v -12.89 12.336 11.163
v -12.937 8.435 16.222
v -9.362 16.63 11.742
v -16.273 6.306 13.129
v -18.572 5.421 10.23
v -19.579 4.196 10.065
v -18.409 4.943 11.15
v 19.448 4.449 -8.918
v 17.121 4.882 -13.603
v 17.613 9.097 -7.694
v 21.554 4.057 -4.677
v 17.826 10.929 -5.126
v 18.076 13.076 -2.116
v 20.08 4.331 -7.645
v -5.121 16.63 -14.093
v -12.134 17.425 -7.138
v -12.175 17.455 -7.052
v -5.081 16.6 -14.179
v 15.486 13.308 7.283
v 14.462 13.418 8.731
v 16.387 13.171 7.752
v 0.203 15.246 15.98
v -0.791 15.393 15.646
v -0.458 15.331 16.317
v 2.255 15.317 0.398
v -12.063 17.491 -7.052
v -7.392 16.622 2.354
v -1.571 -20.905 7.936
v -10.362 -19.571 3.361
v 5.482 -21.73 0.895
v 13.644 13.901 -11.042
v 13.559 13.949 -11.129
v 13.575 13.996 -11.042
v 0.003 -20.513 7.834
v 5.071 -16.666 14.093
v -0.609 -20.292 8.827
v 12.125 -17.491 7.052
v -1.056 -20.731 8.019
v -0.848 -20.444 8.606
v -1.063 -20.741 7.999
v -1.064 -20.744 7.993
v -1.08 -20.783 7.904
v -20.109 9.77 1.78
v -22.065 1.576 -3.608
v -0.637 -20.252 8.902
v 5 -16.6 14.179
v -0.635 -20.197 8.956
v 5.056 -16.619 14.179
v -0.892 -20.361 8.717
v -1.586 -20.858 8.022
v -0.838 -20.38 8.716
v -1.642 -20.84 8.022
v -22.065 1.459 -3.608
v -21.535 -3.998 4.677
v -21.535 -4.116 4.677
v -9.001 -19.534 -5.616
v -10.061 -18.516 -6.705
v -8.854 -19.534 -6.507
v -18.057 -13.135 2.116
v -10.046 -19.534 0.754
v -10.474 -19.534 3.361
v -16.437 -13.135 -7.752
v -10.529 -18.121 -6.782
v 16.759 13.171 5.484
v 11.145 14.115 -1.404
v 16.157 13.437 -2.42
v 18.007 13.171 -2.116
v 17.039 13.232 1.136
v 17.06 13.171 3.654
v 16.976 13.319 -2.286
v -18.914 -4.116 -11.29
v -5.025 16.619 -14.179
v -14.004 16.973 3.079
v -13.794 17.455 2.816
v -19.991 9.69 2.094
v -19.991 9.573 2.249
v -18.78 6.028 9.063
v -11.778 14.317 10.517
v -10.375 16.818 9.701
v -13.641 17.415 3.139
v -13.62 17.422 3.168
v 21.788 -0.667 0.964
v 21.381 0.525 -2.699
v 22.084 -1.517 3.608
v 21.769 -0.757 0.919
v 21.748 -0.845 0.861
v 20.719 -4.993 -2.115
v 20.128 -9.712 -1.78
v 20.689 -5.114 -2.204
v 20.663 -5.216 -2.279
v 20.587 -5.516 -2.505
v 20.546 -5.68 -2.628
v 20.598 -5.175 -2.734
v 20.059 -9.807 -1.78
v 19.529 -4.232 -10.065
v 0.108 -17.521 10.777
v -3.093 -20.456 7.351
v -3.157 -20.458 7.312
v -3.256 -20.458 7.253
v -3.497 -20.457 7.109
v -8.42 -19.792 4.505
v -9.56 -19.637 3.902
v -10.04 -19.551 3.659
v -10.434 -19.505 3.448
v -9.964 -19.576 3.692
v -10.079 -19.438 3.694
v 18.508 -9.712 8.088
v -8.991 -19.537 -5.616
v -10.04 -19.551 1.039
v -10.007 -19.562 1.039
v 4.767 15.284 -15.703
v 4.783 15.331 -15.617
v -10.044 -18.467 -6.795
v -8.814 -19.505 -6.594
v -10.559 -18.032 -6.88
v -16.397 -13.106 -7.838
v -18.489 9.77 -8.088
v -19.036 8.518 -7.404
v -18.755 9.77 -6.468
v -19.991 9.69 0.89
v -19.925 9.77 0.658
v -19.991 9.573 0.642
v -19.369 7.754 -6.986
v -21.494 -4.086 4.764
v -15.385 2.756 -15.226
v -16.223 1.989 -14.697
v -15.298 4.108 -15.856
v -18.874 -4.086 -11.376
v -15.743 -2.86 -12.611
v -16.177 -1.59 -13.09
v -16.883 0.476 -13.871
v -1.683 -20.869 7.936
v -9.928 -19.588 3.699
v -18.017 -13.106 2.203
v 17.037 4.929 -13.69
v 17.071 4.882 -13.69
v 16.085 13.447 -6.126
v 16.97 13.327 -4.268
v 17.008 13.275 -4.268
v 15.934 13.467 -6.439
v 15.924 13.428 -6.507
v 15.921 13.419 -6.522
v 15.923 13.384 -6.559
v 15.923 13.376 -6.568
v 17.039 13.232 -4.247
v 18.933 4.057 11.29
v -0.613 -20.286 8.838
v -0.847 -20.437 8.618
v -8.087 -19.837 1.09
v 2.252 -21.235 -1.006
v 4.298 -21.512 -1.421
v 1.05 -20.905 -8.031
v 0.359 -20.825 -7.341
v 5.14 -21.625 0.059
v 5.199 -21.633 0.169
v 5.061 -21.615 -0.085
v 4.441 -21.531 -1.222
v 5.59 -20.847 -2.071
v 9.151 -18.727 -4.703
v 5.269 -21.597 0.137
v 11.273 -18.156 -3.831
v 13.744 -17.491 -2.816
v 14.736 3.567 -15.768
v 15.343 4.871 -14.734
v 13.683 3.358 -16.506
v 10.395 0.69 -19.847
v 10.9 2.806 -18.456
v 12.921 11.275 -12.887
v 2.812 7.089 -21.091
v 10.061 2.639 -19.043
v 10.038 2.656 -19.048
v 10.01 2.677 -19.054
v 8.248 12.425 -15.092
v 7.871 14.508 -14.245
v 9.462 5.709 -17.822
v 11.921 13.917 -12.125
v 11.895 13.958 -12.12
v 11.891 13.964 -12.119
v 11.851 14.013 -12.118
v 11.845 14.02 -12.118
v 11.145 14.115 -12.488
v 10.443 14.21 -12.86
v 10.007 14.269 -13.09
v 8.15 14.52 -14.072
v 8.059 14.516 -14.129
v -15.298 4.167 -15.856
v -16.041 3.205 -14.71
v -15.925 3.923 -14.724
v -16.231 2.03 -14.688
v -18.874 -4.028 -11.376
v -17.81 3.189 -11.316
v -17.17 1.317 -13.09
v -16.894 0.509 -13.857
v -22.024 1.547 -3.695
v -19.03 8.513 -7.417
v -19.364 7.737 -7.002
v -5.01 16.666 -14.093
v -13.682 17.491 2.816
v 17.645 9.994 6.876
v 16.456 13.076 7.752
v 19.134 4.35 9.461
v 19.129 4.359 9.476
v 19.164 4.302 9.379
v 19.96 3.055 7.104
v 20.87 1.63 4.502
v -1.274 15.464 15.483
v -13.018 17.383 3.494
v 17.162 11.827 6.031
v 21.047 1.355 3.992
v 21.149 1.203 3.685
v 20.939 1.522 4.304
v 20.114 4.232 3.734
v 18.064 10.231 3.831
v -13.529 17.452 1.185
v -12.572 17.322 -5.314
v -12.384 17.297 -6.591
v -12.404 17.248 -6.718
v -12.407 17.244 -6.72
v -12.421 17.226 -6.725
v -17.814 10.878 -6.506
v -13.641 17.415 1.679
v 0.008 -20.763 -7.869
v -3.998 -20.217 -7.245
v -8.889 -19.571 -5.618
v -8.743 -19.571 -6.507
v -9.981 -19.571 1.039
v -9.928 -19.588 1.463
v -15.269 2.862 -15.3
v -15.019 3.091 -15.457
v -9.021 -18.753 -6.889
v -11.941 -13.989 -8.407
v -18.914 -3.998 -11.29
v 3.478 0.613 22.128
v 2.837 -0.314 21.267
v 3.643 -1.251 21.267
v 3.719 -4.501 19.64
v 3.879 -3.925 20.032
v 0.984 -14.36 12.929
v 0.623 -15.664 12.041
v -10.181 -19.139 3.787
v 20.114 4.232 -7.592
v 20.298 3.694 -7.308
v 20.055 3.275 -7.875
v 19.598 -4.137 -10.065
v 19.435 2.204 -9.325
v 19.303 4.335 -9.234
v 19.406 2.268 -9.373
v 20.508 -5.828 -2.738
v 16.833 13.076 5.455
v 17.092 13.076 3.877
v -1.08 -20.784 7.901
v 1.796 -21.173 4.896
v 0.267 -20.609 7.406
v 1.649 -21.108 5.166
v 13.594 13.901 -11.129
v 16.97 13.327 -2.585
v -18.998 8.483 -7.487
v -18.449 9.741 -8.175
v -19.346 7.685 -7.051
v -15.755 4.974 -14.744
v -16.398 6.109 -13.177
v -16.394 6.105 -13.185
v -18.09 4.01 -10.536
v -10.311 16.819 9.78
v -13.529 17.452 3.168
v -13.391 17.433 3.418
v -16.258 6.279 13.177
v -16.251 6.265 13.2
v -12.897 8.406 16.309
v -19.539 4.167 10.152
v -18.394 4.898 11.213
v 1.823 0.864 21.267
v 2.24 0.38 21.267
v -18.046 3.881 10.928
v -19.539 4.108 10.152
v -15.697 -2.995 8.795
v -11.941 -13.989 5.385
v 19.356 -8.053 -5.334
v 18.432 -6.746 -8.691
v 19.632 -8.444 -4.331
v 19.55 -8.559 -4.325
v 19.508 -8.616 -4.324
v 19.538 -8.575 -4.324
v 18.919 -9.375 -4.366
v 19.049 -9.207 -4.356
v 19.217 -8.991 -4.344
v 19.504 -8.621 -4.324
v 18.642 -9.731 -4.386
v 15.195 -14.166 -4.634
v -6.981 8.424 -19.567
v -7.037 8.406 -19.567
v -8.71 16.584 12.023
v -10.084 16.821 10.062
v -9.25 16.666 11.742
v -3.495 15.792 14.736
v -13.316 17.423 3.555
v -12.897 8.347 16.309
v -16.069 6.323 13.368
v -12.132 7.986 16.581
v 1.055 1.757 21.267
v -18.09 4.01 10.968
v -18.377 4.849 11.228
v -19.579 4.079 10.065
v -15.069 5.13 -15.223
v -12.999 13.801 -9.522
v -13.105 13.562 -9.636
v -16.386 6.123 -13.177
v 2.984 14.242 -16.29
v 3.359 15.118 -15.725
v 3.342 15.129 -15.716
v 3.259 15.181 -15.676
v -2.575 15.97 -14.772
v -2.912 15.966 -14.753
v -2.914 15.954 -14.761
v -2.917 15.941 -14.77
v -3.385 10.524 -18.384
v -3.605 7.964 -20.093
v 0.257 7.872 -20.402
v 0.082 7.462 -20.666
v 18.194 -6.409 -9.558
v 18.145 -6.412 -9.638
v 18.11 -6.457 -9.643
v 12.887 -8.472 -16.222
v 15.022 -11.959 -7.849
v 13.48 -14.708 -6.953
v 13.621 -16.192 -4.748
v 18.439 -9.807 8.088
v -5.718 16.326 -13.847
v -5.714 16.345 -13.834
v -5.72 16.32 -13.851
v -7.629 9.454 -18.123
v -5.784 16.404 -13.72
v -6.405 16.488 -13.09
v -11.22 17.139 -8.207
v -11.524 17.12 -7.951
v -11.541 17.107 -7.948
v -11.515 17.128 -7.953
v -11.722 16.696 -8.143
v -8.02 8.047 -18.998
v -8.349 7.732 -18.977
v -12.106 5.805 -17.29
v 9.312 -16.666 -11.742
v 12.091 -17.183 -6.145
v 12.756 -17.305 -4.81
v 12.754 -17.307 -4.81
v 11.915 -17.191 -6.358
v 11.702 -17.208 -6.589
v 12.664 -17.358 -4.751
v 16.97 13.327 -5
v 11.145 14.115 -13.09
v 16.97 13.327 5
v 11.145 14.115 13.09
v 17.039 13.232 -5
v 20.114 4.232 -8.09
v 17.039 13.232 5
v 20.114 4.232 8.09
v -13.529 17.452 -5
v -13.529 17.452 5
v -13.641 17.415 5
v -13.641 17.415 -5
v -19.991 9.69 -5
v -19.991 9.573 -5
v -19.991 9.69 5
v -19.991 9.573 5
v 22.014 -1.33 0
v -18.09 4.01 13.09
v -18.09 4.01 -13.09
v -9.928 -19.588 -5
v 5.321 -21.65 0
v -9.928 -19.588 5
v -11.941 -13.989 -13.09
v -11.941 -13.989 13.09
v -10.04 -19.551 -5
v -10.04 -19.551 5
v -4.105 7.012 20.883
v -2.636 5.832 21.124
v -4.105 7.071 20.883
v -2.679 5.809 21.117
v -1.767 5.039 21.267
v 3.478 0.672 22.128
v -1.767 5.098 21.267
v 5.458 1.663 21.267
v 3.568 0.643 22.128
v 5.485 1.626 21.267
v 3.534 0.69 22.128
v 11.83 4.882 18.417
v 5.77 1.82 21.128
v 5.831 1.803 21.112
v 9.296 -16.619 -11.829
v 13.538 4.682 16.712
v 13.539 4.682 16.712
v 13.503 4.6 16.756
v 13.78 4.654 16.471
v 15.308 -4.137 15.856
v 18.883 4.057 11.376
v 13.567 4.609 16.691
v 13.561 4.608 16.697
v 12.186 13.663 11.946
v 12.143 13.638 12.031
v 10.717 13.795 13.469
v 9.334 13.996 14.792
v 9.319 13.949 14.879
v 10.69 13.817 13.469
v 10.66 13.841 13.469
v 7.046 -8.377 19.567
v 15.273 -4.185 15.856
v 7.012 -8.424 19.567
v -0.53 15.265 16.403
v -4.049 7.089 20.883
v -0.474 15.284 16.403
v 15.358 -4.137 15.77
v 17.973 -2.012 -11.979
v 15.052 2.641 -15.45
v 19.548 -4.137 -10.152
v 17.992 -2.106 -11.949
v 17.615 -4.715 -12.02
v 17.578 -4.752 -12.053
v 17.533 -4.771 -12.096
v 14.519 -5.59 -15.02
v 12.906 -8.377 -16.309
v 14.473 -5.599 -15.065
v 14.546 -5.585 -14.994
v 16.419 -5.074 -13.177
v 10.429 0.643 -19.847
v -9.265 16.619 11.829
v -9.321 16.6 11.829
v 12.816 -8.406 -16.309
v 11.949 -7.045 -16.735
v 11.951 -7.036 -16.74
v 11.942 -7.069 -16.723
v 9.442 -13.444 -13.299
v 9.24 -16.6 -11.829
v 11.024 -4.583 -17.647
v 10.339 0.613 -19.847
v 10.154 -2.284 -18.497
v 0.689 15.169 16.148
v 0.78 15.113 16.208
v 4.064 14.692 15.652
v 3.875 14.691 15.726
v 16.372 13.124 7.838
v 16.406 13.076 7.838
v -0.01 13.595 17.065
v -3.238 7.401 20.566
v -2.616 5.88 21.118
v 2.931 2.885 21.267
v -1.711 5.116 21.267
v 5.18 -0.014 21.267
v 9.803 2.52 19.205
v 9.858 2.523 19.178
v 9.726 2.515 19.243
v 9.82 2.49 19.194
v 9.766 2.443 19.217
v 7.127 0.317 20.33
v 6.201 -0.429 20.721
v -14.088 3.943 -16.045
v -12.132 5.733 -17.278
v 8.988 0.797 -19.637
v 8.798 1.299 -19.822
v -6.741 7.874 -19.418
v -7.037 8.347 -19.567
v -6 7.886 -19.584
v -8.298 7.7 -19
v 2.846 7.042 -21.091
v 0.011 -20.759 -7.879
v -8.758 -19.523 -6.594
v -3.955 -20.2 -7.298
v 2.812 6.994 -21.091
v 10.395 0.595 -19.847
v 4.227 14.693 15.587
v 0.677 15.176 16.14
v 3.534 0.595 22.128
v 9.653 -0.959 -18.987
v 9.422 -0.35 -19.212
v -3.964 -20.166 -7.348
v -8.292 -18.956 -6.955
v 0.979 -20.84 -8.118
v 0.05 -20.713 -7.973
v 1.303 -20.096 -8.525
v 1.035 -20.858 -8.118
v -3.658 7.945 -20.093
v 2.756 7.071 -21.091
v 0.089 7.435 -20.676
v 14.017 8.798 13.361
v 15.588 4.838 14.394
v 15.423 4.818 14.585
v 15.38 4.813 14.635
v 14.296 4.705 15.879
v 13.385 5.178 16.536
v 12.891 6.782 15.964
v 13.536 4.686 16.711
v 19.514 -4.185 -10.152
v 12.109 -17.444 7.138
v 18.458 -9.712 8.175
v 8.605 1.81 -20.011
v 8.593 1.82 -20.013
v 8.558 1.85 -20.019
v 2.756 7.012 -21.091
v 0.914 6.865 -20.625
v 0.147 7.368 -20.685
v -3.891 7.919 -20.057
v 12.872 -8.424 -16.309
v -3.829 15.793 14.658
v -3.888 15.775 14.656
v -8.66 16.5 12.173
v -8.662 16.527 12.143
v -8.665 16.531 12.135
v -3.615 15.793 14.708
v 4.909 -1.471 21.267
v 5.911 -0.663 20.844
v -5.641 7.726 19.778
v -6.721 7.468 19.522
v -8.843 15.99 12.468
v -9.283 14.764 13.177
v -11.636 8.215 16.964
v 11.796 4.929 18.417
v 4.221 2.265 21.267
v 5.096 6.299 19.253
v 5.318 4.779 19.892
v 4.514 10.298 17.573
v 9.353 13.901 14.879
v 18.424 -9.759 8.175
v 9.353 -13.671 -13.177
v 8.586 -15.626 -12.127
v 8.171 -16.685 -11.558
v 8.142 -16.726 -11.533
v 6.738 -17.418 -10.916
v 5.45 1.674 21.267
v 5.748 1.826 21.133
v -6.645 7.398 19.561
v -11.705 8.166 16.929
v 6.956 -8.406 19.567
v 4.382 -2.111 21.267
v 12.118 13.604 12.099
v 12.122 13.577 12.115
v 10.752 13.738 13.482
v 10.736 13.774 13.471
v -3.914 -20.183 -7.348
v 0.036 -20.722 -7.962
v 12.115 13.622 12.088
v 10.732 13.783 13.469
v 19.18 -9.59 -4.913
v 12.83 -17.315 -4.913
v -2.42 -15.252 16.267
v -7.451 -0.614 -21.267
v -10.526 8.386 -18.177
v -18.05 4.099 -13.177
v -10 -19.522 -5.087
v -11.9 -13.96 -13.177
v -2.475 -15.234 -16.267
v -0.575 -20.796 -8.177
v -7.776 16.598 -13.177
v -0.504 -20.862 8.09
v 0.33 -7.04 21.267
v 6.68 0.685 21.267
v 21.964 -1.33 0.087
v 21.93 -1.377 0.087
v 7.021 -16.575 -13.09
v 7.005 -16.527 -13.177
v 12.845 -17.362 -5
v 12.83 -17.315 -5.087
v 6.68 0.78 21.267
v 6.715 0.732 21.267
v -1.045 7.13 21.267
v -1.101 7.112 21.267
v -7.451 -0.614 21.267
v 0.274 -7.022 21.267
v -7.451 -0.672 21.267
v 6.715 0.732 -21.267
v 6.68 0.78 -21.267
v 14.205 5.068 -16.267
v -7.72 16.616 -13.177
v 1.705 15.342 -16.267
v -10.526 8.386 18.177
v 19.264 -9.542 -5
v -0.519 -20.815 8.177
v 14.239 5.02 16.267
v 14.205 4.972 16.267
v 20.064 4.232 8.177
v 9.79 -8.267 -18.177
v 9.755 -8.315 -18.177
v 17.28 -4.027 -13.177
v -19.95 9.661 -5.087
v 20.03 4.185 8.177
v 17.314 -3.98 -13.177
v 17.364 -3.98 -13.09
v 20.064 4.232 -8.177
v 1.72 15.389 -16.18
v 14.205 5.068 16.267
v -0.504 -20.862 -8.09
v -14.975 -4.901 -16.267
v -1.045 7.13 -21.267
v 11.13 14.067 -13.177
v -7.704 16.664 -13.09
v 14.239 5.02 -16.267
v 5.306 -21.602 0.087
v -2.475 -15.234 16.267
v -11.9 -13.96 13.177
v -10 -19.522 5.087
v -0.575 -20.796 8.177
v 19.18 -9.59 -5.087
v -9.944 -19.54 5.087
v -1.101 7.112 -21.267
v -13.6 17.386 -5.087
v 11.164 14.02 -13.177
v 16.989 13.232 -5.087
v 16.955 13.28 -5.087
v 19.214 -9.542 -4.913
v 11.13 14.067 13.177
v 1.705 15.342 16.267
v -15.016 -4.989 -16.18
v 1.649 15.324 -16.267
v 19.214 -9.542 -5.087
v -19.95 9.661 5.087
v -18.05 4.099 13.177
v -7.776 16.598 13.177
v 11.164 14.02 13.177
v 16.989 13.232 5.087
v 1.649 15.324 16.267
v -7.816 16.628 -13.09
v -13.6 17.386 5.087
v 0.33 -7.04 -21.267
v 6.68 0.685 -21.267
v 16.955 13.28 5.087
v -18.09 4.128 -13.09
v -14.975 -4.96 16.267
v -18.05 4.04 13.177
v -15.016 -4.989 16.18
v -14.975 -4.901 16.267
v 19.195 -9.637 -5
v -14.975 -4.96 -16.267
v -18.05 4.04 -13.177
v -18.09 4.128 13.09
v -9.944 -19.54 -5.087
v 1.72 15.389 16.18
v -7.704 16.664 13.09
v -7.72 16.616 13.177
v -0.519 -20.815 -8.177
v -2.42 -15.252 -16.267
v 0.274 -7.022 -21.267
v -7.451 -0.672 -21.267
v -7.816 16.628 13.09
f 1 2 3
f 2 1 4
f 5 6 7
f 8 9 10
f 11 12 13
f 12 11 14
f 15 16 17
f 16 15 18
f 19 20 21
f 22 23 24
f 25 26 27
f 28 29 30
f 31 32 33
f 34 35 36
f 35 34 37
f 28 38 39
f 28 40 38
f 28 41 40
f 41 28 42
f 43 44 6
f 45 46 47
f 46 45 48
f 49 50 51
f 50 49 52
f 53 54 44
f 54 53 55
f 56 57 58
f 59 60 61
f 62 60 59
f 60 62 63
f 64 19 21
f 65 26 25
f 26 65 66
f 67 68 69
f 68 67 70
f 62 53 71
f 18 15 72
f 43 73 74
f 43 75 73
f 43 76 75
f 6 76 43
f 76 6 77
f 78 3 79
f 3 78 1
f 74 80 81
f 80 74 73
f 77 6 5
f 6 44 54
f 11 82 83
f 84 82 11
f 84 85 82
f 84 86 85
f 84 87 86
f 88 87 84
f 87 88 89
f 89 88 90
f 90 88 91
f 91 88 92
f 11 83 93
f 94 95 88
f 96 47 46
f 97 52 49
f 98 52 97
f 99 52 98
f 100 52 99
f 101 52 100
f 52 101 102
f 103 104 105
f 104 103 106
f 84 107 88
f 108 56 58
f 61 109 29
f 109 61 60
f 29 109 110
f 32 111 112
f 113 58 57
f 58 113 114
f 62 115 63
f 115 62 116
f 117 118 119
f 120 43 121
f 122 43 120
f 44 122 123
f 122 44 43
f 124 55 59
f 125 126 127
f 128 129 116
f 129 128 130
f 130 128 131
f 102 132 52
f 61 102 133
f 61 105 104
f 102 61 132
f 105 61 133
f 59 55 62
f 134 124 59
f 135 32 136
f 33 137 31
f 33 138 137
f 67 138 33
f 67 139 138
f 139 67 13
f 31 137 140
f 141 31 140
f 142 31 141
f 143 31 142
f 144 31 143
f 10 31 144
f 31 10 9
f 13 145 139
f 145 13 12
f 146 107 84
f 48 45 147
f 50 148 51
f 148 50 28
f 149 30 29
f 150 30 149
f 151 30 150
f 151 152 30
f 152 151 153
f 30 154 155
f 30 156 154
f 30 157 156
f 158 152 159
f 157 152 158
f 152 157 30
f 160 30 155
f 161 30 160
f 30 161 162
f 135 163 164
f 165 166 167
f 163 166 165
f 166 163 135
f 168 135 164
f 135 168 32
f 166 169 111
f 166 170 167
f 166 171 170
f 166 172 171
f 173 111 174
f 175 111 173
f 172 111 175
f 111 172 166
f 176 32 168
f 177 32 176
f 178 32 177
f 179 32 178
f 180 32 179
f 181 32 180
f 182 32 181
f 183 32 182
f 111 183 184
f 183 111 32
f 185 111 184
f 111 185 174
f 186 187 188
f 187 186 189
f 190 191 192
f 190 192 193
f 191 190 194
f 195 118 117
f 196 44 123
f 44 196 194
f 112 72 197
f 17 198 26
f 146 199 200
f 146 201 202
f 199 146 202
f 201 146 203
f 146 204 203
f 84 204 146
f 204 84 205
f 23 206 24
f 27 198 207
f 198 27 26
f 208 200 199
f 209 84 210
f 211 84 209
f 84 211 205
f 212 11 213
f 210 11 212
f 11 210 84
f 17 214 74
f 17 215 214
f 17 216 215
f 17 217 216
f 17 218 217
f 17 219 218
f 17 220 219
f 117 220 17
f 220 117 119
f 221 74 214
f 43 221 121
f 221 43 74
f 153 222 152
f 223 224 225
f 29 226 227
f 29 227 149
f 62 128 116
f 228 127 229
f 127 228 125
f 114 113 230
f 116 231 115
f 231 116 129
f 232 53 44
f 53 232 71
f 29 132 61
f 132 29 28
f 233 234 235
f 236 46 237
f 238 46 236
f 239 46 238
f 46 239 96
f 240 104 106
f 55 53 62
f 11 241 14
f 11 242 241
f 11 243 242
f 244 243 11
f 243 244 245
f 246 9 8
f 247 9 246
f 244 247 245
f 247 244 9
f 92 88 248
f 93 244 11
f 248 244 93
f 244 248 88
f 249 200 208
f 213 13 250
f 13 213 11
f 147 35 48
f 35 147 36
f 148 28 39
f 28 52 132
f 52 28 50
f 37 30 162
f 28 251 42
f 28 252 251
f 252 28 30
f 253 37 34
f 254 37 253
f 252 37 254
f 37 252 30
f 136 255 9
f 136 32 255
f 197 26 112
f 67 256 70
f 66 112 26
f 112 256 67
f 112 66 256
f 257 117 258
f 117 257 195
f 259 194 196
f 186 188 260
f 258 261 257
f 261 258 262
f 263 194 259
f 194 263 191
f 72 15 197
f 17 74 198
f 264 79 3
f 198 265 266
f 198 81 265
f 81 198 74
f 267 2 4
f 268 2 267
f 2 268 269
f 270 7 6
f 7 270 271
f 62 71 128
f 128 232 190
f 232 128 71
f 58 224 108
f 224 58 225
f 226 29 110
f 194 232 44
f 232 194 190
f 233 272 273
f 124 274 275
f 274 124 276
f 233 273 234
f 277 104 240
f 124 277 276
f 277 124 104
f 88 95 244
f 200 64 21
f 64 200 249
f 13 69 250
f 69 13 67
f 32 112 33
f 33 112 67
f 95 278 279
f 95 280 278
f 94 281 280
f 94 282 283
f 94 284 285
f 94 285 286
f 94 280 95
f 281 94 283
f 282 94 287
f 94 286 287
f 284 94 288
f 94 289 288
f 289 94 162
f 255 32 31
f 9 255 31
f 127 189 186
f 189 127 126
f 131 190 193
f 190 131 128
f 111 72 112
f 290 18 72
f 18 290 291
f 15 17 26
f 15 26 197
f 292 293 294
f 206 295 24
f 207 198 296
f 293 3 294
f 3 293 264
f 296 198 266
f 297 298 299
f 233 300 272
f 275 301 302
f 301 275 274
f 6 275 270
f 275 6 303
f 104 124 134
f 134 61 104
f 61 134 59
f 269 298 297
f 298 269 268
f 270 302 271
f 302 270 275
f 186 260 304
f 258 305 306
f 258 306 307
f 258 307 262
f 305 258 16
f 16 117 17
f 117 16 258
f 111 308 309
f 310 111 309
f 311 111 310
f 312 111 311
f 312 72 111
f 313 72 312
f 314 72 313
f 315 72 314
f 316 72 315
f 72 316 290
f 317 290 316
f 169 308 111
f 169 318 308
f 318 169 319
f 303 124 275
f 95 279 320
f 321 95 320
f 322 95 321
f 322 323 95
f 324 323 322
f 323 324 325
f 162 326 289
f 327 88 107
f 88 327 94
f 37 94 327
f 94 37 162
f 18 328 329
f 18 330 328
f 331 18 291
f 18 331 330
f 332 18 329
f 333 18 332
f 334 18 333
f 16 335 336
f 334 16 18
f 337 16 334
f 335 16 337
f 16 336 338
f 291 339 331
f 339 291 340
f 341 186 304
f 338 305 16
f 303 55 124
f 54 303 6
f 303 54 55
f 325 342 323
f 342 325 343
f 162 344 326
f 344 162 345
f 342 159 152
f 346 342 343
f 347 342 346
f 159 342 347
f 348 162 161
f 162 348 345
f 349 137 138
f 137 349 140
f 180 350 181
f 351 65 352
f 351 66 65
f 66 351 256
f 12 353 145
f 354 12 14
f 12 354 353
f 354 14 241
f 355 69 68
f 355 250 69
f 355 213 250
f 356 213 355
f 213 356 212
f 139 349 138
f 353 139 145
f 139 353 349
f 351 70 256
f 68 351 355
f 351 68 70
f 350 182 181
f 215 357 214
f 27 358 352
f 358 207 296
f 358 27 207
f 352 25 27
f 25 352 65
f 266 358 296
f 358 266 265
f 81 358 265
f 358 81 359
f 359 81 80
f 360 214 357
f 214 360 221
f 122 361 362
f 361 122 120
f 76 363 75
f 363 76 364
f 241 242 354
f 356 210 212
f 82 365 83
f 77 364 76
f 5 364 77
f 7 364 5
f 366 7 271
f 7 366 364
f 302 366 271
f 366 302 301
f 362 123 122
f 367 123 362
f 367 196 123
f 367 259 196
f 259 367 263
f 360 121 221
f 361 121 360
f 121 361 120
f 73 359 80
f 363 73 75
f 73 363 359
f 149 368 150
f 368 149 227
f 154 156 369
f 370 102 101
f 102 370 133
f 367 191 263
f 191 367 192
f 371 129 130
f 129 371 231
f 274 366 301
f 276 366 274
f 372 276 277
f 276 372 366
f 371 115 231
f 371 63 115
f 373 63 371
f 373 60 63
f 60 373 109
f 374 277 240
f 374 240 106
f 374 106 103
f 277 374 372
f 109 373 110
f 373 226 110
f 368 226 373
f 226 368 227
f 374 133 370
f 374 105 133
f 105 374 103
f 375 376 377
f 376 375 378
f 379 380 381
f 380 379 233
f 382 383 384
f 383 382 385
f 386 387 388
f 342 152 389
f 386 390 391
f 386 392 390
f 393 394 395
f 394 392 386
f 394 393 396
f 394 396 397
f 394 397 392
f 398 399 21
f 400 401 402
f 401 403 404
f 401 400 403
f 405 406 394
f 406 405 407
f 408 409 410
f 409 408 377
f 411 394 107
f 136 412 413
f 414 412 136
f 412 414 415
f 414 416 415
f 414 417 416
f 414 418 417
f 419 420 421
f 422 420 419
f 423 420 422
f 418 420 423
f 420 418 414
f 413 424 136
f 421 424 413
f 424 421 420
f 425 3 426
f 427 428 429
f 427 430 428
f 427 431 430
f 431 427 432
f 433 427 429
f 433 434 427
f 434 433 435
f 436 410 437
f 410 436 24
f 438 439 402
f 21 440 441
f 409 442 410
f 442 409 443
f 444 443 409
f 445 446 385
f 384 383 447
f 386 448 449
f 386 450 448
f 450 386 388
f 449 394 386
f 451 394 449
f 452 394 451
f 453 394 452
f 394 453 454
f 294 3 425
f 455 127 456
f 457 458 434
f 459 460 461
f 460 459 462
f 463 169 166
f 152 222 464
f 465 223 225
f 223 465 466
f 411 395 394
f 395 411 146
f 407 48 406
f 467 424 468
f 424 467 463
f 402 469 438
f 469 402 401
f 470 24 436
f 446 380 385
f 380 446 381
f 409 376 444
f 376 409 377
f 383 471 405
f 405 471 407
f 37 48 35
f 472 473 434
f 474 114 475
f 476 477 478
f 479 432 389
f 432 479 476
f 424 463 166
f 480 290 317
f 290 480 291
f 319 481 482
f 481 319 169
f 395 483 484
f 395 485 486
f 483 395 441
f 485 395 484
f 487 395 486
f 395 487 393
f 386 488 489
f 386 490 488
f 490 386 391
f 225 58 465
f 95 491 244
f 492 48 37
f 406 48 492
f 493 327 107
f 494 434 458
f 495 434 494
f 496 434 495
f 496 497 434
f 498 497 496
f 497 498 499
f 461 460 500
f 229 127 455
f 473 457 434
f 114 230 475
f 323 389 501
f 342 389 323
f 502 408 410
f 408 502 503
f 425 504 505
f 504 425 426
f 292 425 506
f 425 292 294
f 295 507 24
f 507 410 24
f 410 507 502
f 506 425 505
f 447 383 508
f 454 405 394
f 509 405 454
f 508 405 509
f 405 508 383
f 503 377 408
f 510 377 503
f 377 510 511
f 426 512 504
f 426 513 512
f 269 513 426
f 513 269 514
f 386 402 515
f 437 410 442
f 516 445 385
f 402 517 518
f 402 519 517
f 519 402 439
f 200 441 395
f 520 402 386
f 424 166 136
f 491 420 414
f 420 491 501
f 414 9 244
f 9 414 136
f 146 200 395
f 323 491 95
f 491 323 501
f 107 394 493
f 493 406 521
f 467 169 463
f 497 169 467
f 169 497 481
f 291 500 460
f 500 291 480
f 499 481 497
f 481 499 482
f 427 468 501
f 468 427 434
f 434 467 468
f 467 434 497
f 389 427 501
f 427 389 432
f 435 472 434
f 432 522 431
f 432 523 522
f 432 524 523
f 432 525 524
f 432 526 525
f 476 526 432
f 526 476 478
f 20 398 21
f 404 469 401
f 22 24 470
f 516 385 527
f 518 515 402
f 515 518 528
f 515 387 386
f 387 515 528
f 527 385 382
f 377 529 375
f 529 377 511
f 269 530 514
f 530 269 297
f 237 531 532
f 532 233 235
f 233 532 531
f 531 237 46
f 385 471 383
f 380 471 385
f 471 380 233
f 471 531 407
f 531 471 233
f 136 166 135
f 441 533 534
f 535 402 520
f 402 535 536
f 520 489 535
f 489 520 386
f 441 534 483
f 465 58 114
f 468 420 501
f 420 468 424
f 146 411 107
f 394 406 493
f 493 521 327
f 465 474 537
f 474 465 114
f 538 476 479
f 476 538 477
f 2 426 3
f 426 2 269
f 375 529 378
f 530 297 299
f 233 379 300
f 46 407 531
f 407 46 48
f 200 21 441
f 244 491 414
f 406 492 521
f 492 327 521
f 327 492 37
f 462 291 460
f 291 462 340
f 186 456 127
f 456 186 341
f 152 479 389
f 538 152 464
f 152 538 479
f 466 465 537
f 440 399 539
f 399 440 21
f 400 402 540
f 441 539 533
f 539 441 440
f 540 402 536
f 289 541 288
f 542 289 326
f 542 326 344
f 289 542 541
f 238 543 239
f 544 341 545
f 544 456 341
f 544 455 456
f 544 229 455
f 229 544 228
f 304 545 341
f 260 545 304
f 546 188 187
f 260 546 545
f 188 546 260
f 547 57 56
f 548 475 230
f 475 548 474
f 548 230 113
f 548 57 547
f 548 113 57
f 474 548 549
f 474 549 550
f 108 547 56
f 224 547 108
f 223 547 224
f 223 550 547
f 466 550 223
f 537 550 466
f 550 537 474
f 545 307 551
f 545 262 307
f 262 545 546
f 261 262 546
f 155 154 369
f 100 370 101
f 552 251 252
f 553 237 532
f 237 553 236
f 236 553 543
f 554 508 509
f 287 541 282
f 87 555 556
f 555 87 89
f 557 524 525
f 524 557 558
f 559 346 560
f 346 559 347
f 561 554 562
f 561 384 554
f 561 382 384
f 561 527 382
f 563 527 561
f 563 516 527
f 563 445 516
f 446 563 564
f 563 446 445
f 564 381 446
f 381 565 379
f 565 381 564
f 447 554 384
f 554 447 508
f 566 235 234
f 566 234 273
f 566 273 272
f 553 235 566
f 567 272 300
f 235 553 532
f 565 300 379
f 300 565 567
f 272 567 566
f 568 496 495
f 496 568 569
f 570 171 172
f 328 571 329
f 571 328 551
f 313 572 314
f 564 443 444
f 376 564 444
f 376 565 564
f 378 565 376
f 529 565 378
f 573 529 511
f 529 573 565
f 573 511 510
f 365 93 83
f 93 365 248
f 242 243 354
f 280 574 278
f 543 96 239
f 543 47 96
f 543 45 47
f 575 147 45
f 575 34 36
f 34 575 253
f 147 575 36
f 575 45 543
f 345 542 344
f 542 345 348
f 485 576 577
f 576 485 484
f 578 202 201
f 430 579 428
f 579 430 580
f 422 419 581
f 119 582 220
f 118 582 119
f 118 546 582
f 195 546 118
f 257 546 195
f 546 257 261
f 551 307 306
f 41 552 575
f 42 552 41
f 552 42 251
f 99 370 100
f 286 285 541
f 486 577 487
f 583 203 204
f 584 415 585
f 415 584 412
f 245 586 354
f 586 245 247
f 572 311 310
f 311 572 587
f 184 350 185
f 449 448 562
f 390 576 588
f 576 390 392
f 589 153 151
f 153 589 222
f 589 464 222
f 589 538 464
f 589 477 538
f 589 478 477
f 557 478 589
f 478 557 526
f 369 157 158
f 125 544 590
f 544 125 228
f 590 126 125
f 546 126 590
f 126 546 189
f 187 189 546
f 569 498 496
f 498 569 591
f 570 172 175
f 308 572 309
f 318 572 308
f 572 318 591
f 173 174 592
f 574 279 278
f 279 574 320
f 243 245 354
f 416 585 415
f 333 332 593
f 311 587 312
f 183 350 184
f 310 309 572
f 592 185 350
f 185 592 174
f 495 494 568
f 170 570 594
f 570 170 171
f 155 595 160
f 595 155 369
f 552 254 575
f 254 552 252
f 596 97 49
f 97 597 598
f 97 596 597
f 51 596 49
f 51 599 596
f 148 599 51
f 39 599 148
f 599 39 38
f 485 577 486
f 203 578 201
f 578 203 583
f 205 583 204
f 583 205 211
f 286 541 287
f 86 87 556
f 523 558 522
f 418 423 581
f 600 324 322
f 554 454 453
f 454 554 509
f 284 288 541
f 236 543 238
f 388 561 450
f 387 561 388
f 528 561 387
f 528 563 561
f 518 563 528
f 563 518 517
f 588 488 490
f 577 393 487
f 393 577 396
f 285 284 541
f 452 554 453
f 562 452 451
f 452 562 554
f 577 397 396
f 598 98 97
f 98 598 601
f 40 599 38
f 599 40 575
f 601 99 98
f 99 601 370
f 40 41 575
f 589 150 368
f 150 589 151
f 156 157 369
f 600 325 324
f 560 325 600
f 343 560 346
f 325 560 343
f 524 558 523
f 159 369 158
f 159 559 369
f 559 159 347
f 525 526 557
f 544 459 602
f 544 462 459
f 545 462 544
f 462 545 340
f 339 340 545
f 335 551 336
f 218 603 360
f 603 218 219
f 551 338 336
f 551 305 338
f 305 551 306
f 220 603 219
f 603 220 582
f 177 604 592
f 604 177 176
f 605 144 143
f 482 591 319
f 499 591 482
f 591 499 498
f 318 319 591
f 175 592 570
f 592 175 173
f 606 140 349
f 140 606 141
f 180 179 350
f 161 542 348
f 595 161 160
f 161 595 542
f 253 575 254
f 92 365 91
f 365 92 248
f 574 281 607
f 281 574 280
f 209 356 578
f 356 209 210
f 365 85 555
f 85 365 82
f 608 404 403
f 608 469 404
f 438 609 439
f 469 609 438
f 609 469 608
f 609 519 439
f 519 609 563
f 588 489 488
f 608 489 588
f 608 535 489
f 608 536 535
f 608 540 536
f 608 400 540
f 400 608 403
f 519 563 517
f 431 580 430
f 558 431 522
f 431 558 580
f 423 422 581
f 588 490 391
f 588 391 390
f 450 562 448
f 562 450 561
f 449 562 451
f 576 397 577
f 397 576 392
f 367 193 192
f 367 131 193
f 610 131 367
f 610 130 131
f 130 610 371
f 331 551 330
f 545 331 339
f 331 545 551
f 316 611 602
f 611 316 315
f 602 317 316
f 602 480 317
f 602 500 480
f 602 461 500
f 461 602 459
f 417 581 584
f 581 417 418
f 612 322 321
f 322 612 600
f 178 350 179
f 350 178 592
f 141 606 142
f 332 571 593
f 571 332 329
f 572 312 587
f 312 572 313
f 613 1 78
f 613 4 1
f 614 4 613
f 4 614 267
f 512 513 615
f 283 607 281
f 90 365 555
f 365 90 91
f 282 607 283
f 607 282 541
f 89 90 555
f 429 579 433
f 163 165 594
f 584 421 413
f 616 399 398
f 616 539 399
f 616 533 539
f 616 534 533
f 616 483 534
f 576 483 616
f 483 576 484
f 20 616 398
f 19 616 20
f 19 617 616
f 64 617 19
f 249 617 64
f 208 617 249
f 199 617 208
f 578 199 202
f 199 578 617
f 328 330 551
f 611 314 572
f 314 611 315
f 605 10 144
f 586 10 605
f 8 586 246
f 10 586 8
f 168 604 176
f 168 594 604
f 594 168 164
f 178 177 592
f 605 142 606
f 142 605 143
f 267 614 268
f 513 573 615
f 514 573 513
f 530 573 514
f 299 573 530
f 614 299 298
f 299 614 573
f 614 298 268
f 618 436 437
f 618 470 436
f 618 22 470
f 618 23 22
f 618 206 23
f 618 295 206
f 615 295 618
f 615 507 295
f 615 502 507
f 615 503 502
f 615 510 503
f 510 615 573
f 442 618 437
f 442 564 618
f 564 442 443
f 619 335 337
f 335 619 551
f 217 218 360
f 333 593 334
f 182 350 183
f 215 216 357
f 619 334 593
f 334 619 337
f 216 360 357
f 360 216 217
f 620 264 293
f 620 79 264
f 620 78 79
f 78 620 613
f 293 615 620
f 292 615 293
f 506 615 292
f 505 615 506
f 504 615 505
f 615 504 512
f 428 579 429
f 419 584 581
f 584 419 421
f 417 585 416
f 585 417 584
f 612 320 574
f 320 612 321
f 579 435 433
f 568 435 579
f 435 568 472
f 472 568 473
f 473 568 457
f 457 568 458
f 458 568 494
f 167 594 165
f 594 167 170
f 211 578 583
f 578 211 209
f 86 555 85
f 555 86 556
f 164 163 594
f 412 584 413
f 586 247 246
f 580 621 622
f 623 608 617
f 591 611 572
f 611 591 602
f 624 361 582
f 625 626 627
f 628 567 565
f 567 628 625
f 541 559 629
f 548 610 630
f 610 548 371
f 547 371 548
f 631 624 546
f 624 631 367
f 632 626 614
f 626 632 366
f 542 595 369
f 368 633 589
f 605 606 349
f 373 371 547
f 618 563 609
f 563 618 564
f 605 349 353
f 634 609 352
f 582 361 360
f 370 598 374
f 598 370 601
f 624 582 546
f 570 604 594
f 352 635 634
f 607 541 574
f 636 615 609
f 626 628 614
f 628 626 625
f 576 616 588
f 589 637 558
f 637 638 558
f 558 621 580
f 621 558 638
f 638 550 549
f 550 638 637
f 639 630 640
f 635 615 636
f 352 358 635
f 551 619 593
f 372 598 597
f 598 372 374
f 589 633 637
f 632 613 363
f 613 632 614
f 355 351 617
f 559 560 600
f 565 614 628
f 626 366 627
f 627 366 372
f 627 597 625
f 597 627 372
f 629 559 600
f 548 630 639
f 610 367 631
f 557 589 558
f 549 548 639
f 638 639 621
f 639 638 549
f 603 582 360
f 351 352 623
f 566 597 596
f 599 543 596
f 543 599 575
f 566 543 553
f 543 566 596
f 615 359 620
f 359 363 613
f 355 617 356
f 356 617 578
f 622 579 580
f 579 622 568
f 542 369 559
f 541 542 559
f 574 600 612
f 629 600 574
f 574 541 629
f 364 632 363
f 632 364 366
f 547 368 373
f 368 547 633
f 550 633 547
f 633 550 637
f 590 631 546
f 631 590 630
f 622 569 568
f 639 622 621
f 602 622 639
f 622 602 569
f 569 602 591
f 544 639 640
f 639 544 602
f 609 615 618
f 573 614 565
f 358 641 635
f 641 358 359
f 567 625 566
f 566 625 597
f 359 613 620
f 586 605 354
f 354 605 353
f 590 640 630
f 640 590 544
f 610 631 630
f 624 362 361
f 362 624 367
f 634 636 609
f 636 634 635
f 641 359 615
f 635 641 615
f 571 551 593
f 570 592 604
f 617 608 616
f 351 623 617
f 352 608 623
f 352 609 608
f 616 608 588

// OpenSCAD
// Auto-generated OpenSCAD file

    inner_points = 10*[[0.03149424619031844, -0.6992864879444639, 2.118033988749915], [0.03149424617314351, -0.6992864879462605, -2.118033988749875], [-0.741026938557207, -0.06429749660974819, 2.1180339887527775], [-0.741026938574382, -0.06429749661154475, -2.1180339887470123], [0.6664832375250342, 0.07323469680306156, 2.1180339887470123], [0.6664832375078593, 0.073234696801265, -2.1180339887527775], [-0.10603794722249132, 0.7082236881377774, 2.118033988749875], [-0.10603794723966625, 0.7082236881359808, -2.118033988749915], [-0.9959395242778242, -1.9492520218959832, 0.5000000000047155], [-0.9959395242818789, -1.9492520218964078, -0.49999999999528455], [1.6939170079800567, 1.3232002307532087, 0.49999999999242173], [1.693917007976002, 1.3232002307527841, -0.5000000000075783], [1.2814597801305372, -1.726720258407157, -0.5000000000046125], [-1.9909924725146007, 0.9631362738511482, 0.5000000000075147], [-1.9909924725186547, 0.9631362738507241, -0.49999999999248534], [1.916448771465253, -0.9541990736596313, -0.5000000000075147], [-1.356003481179885, 1.7356574585986737, 0.5000000000046125], [-1.356003481183939, 1.7356574585982496, -0.49999999999538747], [0.9739715088171708, -0.8267427808031579, -1.809016994378695], [-1.0485152098665185, 0.8356799809946748, 1.809016994378695], [-1.0485152098811878, 0.8356799809931404, -1.8090169943712], [-1.1859777270848737, -1.3930353516266287, 1.3090169943801975], [-1.1859777270954883, -1.393035351627739, -1.3090169943696974], [1.1114340260461406, 1.4019725518192556, 1.3090169943696974], [1.111434026035526, 1.4019725518181454, -1.3090169943801975], [0.5290207203001192, -2.155480635818928, -1.3799625129733234e-12], [2.1914434820964175, -0.13299391712056935, -8.977904296875527e-12], [-0.24350046444084633, -1.5204916444835261, 1.6180339887513777], [-0.24350046445396684, -1.5204916444848984, -1.618033988748412], [-1.4934659983916794, -0.4930578740219434, 1.61803398875601], [-1.4934659984047998, -0.49305787402331586, -1.6180339887437798], [1.418922297355452, 0.5019950742148327, 1.6180339887437798], [1.4189222973423317, 0.5019950742134602, -1.61803398875601], [0.16895676340461901, 1.529428844676415, 1.618033988748412], [0.1689567633914985, 1.5294288446750428, -1.6180339887513777], [-0.05346226163379702, -2.0767083147528806, 0.8090169943758957], [-0.053462261640357105, -2.0767083147535668, -0.8090169943739992], [2.001405279289368, 0.4232227531487855, 0.8090169943665041], [2.001405279282808, 0.4232227531480994, -0.8090169943833908], [0.6989767981900609, -1.6479479373417958, -1.3090169943772316], [-1.8009542697009913, 0.4069196035824795, 1.3090169943819274], [-1.8009542697116054, 0.4069196035813693, -1.3090169943679675], [1.7264105686516436, -0.39798240339096275, -1.3090169943819274], [-0.7735204992394086, 1.6568851375333125, 1.3090169943772316], [-0.773520499250023, 1.6568851375322022, -1.3090169943726633]];

    outer_points = 10*[[-1.371336447205841, 1.7395979495788785, 0.28160841586432317], [1.840844013022788, -0.9711587981091819, 0.8088336578512769], [-2.0028099882397674, 0.9711587981091819, 0.17796268530774234], [1.2093704719888618, -1.7395979495788785, 0.705187927294696], [-1.2093704719888618, 1.7395979495788785, -0.705187927294696], [2.0028099882397674, -0.9711587981091819, -0.17796268530774234], [-1.840844013022788, 0.9711587981091819, -0.8088336578512769], [1.371336447205841, -1.7395979495788785, -0.28160841586432317], [-0.4064591423188801, 0.7041810071951622, 2.079660561781849], [0.35183380229163597, 0.06425814427453419, 2.2041215583445464], [0.27963973874229003, 0.7041810071951622, -2.1004758277879656], [1.037932683352806, 0.06425814427453419, -1.9760148312252683], [1.6356459076028755, 1.3076188096386316, 0.77515384996851], [-1.7976118828198546, -1.3076188096386316, 0.21164249319050915], [-1.0393189382093386, -1.9475416725592598, 0.33610348975320653], [1.7976118828198546, 1.3076188096386316, -0.21164249319050915], [-1.6356459076028755, -1.3076188096386316, -0.77515384996851], [-0.8773529629923593, -1.9475416725592598, -0.6506928534058127], [2.1983744202265796, -0.15173142569558906, 0.36082608061173255], [-2.1983744202265796, 0.15173142569558906, -0.36082608061173255], [0.5451552268035095, -2.163531242529383, 0.08947803522579041], [-1.285617552887813, 0.837669902652172, 1.6222097951243055], [0.6996191495317593, -0.837669902652172, 1.948052914399131], [-0.6996191495317593, 0.837669902652172, -1.948052914399131], [1.285617552887813, -0.837669902652172, -1.6222097951243055], [0.9303301531589606, 1.3901194841517452, 1.47923007115347], [1.3543625812980353, 1.3901194841517452, -1.104236295210947], [-0.9280871456840218, 1.6570972750657649, 1.174202217884761], [1.525800369934091, -0.41373660970166726, 1.5769664633090175], [-1.9498327980731658, 0.41373660970166726, 1.0064999030553996], [0.5040547175449472, -1.6570972750657649, 1.409264148479656], [-0.5040547175449472, 1.6570972750657649, -1.409264148479656], [1.9498327980731658, -0.41373660970166726, -1.0064999030553996], [-1.525800369934091, 0.41373660970166726, -1.5769664633090175], [0.9280871456840218, -1.6570972750657649, -1.174202217884761], [-0.04892873511508877, 1.523608379608755, 1.631652984542305], [1.1780150226939676, 0.4881914372250389, 1.833035107254433], [0.47520417072910215, 1.523608379608755, -1.5616870618684908], [1.7021479285381587, 0.4881914372250389, -1.3603049391563626], [1.8833307771378829, 0.4056907627119256, 1.128958886069473], [-2.145397230059978, -0.4056907627119256, 0.46771113713592477], [-0.16016052764040542, -2.0810305680162697, 0.7935542564107504], [2.145397230059978, 0.4056907627119256, -0.46771113713592477], [-1.8833307771378829, -0.4056907627119256, -1.128958886069473], [0.10190592528169004, -2.0810305680162697, -0.8031157667946475]];

    // Convex hull for inner set (I)
    module inner_hull() {
        hull() {
            for (p = inner_points) {
                translate(p) sphere(r=0.1);
            }
        }
    }

    // Convex hull for outer set (O) minus inner hull (O \ I)
    module outer_minus_inner() {
        difference() {
            hull() {
                for (p = outer_points) {
                    translate(p) sphere(r=0.1);
                }
            }
            inner_hull(); // Subtract inner hull
        }
    }

    // Convex hull for outer set (O) minus all translated inner hulls
    module outer_minus_AllTranslationInner() {
        difference() {
            hull() {
                for (p = outer_points) {
                    translate(p) sphere(r=0.1);
                }
            }
            hull() {
                translate([0,0,50]) inner_hull();
                translate([0,0,-50]) inner_hull();
            }; // Subtract translated inner hulls
        }
    }

    // Difference between outer_minus_inner and outer_minus_AllTranslationInner
    module outer_minus_inner_diff() {
        difference() {
            // Outer minus inner
            difference() {
                hull() {
                    for (p = outer_points) {
                        translate(p) sphere(r=0.1);
                    }
                }
                inner_hull();
            }

            // Subtract Outer minus AllTranslationInner
            difference() {
                hull() {
                    for (p = outer_points) {
                        translate(p) sphere(r=0.1);
                    }
                }
                hull() {
                    translate([0,0,50]) inner_hull();
                    translate([0,0,-50]) inner_hull();
                };
            }
        }
    }

    // Rendering all with colors applied
    color([1, 0, 0, 0.5]) inner_hull(); // Transparent red
    color([0, 1, 0, 1]) outer_minus_AllTranslationInner(); // Opaque green
    color([1, 1, 0, 1]) outer_minus_inner_diff(); // Opaque yellow
    
